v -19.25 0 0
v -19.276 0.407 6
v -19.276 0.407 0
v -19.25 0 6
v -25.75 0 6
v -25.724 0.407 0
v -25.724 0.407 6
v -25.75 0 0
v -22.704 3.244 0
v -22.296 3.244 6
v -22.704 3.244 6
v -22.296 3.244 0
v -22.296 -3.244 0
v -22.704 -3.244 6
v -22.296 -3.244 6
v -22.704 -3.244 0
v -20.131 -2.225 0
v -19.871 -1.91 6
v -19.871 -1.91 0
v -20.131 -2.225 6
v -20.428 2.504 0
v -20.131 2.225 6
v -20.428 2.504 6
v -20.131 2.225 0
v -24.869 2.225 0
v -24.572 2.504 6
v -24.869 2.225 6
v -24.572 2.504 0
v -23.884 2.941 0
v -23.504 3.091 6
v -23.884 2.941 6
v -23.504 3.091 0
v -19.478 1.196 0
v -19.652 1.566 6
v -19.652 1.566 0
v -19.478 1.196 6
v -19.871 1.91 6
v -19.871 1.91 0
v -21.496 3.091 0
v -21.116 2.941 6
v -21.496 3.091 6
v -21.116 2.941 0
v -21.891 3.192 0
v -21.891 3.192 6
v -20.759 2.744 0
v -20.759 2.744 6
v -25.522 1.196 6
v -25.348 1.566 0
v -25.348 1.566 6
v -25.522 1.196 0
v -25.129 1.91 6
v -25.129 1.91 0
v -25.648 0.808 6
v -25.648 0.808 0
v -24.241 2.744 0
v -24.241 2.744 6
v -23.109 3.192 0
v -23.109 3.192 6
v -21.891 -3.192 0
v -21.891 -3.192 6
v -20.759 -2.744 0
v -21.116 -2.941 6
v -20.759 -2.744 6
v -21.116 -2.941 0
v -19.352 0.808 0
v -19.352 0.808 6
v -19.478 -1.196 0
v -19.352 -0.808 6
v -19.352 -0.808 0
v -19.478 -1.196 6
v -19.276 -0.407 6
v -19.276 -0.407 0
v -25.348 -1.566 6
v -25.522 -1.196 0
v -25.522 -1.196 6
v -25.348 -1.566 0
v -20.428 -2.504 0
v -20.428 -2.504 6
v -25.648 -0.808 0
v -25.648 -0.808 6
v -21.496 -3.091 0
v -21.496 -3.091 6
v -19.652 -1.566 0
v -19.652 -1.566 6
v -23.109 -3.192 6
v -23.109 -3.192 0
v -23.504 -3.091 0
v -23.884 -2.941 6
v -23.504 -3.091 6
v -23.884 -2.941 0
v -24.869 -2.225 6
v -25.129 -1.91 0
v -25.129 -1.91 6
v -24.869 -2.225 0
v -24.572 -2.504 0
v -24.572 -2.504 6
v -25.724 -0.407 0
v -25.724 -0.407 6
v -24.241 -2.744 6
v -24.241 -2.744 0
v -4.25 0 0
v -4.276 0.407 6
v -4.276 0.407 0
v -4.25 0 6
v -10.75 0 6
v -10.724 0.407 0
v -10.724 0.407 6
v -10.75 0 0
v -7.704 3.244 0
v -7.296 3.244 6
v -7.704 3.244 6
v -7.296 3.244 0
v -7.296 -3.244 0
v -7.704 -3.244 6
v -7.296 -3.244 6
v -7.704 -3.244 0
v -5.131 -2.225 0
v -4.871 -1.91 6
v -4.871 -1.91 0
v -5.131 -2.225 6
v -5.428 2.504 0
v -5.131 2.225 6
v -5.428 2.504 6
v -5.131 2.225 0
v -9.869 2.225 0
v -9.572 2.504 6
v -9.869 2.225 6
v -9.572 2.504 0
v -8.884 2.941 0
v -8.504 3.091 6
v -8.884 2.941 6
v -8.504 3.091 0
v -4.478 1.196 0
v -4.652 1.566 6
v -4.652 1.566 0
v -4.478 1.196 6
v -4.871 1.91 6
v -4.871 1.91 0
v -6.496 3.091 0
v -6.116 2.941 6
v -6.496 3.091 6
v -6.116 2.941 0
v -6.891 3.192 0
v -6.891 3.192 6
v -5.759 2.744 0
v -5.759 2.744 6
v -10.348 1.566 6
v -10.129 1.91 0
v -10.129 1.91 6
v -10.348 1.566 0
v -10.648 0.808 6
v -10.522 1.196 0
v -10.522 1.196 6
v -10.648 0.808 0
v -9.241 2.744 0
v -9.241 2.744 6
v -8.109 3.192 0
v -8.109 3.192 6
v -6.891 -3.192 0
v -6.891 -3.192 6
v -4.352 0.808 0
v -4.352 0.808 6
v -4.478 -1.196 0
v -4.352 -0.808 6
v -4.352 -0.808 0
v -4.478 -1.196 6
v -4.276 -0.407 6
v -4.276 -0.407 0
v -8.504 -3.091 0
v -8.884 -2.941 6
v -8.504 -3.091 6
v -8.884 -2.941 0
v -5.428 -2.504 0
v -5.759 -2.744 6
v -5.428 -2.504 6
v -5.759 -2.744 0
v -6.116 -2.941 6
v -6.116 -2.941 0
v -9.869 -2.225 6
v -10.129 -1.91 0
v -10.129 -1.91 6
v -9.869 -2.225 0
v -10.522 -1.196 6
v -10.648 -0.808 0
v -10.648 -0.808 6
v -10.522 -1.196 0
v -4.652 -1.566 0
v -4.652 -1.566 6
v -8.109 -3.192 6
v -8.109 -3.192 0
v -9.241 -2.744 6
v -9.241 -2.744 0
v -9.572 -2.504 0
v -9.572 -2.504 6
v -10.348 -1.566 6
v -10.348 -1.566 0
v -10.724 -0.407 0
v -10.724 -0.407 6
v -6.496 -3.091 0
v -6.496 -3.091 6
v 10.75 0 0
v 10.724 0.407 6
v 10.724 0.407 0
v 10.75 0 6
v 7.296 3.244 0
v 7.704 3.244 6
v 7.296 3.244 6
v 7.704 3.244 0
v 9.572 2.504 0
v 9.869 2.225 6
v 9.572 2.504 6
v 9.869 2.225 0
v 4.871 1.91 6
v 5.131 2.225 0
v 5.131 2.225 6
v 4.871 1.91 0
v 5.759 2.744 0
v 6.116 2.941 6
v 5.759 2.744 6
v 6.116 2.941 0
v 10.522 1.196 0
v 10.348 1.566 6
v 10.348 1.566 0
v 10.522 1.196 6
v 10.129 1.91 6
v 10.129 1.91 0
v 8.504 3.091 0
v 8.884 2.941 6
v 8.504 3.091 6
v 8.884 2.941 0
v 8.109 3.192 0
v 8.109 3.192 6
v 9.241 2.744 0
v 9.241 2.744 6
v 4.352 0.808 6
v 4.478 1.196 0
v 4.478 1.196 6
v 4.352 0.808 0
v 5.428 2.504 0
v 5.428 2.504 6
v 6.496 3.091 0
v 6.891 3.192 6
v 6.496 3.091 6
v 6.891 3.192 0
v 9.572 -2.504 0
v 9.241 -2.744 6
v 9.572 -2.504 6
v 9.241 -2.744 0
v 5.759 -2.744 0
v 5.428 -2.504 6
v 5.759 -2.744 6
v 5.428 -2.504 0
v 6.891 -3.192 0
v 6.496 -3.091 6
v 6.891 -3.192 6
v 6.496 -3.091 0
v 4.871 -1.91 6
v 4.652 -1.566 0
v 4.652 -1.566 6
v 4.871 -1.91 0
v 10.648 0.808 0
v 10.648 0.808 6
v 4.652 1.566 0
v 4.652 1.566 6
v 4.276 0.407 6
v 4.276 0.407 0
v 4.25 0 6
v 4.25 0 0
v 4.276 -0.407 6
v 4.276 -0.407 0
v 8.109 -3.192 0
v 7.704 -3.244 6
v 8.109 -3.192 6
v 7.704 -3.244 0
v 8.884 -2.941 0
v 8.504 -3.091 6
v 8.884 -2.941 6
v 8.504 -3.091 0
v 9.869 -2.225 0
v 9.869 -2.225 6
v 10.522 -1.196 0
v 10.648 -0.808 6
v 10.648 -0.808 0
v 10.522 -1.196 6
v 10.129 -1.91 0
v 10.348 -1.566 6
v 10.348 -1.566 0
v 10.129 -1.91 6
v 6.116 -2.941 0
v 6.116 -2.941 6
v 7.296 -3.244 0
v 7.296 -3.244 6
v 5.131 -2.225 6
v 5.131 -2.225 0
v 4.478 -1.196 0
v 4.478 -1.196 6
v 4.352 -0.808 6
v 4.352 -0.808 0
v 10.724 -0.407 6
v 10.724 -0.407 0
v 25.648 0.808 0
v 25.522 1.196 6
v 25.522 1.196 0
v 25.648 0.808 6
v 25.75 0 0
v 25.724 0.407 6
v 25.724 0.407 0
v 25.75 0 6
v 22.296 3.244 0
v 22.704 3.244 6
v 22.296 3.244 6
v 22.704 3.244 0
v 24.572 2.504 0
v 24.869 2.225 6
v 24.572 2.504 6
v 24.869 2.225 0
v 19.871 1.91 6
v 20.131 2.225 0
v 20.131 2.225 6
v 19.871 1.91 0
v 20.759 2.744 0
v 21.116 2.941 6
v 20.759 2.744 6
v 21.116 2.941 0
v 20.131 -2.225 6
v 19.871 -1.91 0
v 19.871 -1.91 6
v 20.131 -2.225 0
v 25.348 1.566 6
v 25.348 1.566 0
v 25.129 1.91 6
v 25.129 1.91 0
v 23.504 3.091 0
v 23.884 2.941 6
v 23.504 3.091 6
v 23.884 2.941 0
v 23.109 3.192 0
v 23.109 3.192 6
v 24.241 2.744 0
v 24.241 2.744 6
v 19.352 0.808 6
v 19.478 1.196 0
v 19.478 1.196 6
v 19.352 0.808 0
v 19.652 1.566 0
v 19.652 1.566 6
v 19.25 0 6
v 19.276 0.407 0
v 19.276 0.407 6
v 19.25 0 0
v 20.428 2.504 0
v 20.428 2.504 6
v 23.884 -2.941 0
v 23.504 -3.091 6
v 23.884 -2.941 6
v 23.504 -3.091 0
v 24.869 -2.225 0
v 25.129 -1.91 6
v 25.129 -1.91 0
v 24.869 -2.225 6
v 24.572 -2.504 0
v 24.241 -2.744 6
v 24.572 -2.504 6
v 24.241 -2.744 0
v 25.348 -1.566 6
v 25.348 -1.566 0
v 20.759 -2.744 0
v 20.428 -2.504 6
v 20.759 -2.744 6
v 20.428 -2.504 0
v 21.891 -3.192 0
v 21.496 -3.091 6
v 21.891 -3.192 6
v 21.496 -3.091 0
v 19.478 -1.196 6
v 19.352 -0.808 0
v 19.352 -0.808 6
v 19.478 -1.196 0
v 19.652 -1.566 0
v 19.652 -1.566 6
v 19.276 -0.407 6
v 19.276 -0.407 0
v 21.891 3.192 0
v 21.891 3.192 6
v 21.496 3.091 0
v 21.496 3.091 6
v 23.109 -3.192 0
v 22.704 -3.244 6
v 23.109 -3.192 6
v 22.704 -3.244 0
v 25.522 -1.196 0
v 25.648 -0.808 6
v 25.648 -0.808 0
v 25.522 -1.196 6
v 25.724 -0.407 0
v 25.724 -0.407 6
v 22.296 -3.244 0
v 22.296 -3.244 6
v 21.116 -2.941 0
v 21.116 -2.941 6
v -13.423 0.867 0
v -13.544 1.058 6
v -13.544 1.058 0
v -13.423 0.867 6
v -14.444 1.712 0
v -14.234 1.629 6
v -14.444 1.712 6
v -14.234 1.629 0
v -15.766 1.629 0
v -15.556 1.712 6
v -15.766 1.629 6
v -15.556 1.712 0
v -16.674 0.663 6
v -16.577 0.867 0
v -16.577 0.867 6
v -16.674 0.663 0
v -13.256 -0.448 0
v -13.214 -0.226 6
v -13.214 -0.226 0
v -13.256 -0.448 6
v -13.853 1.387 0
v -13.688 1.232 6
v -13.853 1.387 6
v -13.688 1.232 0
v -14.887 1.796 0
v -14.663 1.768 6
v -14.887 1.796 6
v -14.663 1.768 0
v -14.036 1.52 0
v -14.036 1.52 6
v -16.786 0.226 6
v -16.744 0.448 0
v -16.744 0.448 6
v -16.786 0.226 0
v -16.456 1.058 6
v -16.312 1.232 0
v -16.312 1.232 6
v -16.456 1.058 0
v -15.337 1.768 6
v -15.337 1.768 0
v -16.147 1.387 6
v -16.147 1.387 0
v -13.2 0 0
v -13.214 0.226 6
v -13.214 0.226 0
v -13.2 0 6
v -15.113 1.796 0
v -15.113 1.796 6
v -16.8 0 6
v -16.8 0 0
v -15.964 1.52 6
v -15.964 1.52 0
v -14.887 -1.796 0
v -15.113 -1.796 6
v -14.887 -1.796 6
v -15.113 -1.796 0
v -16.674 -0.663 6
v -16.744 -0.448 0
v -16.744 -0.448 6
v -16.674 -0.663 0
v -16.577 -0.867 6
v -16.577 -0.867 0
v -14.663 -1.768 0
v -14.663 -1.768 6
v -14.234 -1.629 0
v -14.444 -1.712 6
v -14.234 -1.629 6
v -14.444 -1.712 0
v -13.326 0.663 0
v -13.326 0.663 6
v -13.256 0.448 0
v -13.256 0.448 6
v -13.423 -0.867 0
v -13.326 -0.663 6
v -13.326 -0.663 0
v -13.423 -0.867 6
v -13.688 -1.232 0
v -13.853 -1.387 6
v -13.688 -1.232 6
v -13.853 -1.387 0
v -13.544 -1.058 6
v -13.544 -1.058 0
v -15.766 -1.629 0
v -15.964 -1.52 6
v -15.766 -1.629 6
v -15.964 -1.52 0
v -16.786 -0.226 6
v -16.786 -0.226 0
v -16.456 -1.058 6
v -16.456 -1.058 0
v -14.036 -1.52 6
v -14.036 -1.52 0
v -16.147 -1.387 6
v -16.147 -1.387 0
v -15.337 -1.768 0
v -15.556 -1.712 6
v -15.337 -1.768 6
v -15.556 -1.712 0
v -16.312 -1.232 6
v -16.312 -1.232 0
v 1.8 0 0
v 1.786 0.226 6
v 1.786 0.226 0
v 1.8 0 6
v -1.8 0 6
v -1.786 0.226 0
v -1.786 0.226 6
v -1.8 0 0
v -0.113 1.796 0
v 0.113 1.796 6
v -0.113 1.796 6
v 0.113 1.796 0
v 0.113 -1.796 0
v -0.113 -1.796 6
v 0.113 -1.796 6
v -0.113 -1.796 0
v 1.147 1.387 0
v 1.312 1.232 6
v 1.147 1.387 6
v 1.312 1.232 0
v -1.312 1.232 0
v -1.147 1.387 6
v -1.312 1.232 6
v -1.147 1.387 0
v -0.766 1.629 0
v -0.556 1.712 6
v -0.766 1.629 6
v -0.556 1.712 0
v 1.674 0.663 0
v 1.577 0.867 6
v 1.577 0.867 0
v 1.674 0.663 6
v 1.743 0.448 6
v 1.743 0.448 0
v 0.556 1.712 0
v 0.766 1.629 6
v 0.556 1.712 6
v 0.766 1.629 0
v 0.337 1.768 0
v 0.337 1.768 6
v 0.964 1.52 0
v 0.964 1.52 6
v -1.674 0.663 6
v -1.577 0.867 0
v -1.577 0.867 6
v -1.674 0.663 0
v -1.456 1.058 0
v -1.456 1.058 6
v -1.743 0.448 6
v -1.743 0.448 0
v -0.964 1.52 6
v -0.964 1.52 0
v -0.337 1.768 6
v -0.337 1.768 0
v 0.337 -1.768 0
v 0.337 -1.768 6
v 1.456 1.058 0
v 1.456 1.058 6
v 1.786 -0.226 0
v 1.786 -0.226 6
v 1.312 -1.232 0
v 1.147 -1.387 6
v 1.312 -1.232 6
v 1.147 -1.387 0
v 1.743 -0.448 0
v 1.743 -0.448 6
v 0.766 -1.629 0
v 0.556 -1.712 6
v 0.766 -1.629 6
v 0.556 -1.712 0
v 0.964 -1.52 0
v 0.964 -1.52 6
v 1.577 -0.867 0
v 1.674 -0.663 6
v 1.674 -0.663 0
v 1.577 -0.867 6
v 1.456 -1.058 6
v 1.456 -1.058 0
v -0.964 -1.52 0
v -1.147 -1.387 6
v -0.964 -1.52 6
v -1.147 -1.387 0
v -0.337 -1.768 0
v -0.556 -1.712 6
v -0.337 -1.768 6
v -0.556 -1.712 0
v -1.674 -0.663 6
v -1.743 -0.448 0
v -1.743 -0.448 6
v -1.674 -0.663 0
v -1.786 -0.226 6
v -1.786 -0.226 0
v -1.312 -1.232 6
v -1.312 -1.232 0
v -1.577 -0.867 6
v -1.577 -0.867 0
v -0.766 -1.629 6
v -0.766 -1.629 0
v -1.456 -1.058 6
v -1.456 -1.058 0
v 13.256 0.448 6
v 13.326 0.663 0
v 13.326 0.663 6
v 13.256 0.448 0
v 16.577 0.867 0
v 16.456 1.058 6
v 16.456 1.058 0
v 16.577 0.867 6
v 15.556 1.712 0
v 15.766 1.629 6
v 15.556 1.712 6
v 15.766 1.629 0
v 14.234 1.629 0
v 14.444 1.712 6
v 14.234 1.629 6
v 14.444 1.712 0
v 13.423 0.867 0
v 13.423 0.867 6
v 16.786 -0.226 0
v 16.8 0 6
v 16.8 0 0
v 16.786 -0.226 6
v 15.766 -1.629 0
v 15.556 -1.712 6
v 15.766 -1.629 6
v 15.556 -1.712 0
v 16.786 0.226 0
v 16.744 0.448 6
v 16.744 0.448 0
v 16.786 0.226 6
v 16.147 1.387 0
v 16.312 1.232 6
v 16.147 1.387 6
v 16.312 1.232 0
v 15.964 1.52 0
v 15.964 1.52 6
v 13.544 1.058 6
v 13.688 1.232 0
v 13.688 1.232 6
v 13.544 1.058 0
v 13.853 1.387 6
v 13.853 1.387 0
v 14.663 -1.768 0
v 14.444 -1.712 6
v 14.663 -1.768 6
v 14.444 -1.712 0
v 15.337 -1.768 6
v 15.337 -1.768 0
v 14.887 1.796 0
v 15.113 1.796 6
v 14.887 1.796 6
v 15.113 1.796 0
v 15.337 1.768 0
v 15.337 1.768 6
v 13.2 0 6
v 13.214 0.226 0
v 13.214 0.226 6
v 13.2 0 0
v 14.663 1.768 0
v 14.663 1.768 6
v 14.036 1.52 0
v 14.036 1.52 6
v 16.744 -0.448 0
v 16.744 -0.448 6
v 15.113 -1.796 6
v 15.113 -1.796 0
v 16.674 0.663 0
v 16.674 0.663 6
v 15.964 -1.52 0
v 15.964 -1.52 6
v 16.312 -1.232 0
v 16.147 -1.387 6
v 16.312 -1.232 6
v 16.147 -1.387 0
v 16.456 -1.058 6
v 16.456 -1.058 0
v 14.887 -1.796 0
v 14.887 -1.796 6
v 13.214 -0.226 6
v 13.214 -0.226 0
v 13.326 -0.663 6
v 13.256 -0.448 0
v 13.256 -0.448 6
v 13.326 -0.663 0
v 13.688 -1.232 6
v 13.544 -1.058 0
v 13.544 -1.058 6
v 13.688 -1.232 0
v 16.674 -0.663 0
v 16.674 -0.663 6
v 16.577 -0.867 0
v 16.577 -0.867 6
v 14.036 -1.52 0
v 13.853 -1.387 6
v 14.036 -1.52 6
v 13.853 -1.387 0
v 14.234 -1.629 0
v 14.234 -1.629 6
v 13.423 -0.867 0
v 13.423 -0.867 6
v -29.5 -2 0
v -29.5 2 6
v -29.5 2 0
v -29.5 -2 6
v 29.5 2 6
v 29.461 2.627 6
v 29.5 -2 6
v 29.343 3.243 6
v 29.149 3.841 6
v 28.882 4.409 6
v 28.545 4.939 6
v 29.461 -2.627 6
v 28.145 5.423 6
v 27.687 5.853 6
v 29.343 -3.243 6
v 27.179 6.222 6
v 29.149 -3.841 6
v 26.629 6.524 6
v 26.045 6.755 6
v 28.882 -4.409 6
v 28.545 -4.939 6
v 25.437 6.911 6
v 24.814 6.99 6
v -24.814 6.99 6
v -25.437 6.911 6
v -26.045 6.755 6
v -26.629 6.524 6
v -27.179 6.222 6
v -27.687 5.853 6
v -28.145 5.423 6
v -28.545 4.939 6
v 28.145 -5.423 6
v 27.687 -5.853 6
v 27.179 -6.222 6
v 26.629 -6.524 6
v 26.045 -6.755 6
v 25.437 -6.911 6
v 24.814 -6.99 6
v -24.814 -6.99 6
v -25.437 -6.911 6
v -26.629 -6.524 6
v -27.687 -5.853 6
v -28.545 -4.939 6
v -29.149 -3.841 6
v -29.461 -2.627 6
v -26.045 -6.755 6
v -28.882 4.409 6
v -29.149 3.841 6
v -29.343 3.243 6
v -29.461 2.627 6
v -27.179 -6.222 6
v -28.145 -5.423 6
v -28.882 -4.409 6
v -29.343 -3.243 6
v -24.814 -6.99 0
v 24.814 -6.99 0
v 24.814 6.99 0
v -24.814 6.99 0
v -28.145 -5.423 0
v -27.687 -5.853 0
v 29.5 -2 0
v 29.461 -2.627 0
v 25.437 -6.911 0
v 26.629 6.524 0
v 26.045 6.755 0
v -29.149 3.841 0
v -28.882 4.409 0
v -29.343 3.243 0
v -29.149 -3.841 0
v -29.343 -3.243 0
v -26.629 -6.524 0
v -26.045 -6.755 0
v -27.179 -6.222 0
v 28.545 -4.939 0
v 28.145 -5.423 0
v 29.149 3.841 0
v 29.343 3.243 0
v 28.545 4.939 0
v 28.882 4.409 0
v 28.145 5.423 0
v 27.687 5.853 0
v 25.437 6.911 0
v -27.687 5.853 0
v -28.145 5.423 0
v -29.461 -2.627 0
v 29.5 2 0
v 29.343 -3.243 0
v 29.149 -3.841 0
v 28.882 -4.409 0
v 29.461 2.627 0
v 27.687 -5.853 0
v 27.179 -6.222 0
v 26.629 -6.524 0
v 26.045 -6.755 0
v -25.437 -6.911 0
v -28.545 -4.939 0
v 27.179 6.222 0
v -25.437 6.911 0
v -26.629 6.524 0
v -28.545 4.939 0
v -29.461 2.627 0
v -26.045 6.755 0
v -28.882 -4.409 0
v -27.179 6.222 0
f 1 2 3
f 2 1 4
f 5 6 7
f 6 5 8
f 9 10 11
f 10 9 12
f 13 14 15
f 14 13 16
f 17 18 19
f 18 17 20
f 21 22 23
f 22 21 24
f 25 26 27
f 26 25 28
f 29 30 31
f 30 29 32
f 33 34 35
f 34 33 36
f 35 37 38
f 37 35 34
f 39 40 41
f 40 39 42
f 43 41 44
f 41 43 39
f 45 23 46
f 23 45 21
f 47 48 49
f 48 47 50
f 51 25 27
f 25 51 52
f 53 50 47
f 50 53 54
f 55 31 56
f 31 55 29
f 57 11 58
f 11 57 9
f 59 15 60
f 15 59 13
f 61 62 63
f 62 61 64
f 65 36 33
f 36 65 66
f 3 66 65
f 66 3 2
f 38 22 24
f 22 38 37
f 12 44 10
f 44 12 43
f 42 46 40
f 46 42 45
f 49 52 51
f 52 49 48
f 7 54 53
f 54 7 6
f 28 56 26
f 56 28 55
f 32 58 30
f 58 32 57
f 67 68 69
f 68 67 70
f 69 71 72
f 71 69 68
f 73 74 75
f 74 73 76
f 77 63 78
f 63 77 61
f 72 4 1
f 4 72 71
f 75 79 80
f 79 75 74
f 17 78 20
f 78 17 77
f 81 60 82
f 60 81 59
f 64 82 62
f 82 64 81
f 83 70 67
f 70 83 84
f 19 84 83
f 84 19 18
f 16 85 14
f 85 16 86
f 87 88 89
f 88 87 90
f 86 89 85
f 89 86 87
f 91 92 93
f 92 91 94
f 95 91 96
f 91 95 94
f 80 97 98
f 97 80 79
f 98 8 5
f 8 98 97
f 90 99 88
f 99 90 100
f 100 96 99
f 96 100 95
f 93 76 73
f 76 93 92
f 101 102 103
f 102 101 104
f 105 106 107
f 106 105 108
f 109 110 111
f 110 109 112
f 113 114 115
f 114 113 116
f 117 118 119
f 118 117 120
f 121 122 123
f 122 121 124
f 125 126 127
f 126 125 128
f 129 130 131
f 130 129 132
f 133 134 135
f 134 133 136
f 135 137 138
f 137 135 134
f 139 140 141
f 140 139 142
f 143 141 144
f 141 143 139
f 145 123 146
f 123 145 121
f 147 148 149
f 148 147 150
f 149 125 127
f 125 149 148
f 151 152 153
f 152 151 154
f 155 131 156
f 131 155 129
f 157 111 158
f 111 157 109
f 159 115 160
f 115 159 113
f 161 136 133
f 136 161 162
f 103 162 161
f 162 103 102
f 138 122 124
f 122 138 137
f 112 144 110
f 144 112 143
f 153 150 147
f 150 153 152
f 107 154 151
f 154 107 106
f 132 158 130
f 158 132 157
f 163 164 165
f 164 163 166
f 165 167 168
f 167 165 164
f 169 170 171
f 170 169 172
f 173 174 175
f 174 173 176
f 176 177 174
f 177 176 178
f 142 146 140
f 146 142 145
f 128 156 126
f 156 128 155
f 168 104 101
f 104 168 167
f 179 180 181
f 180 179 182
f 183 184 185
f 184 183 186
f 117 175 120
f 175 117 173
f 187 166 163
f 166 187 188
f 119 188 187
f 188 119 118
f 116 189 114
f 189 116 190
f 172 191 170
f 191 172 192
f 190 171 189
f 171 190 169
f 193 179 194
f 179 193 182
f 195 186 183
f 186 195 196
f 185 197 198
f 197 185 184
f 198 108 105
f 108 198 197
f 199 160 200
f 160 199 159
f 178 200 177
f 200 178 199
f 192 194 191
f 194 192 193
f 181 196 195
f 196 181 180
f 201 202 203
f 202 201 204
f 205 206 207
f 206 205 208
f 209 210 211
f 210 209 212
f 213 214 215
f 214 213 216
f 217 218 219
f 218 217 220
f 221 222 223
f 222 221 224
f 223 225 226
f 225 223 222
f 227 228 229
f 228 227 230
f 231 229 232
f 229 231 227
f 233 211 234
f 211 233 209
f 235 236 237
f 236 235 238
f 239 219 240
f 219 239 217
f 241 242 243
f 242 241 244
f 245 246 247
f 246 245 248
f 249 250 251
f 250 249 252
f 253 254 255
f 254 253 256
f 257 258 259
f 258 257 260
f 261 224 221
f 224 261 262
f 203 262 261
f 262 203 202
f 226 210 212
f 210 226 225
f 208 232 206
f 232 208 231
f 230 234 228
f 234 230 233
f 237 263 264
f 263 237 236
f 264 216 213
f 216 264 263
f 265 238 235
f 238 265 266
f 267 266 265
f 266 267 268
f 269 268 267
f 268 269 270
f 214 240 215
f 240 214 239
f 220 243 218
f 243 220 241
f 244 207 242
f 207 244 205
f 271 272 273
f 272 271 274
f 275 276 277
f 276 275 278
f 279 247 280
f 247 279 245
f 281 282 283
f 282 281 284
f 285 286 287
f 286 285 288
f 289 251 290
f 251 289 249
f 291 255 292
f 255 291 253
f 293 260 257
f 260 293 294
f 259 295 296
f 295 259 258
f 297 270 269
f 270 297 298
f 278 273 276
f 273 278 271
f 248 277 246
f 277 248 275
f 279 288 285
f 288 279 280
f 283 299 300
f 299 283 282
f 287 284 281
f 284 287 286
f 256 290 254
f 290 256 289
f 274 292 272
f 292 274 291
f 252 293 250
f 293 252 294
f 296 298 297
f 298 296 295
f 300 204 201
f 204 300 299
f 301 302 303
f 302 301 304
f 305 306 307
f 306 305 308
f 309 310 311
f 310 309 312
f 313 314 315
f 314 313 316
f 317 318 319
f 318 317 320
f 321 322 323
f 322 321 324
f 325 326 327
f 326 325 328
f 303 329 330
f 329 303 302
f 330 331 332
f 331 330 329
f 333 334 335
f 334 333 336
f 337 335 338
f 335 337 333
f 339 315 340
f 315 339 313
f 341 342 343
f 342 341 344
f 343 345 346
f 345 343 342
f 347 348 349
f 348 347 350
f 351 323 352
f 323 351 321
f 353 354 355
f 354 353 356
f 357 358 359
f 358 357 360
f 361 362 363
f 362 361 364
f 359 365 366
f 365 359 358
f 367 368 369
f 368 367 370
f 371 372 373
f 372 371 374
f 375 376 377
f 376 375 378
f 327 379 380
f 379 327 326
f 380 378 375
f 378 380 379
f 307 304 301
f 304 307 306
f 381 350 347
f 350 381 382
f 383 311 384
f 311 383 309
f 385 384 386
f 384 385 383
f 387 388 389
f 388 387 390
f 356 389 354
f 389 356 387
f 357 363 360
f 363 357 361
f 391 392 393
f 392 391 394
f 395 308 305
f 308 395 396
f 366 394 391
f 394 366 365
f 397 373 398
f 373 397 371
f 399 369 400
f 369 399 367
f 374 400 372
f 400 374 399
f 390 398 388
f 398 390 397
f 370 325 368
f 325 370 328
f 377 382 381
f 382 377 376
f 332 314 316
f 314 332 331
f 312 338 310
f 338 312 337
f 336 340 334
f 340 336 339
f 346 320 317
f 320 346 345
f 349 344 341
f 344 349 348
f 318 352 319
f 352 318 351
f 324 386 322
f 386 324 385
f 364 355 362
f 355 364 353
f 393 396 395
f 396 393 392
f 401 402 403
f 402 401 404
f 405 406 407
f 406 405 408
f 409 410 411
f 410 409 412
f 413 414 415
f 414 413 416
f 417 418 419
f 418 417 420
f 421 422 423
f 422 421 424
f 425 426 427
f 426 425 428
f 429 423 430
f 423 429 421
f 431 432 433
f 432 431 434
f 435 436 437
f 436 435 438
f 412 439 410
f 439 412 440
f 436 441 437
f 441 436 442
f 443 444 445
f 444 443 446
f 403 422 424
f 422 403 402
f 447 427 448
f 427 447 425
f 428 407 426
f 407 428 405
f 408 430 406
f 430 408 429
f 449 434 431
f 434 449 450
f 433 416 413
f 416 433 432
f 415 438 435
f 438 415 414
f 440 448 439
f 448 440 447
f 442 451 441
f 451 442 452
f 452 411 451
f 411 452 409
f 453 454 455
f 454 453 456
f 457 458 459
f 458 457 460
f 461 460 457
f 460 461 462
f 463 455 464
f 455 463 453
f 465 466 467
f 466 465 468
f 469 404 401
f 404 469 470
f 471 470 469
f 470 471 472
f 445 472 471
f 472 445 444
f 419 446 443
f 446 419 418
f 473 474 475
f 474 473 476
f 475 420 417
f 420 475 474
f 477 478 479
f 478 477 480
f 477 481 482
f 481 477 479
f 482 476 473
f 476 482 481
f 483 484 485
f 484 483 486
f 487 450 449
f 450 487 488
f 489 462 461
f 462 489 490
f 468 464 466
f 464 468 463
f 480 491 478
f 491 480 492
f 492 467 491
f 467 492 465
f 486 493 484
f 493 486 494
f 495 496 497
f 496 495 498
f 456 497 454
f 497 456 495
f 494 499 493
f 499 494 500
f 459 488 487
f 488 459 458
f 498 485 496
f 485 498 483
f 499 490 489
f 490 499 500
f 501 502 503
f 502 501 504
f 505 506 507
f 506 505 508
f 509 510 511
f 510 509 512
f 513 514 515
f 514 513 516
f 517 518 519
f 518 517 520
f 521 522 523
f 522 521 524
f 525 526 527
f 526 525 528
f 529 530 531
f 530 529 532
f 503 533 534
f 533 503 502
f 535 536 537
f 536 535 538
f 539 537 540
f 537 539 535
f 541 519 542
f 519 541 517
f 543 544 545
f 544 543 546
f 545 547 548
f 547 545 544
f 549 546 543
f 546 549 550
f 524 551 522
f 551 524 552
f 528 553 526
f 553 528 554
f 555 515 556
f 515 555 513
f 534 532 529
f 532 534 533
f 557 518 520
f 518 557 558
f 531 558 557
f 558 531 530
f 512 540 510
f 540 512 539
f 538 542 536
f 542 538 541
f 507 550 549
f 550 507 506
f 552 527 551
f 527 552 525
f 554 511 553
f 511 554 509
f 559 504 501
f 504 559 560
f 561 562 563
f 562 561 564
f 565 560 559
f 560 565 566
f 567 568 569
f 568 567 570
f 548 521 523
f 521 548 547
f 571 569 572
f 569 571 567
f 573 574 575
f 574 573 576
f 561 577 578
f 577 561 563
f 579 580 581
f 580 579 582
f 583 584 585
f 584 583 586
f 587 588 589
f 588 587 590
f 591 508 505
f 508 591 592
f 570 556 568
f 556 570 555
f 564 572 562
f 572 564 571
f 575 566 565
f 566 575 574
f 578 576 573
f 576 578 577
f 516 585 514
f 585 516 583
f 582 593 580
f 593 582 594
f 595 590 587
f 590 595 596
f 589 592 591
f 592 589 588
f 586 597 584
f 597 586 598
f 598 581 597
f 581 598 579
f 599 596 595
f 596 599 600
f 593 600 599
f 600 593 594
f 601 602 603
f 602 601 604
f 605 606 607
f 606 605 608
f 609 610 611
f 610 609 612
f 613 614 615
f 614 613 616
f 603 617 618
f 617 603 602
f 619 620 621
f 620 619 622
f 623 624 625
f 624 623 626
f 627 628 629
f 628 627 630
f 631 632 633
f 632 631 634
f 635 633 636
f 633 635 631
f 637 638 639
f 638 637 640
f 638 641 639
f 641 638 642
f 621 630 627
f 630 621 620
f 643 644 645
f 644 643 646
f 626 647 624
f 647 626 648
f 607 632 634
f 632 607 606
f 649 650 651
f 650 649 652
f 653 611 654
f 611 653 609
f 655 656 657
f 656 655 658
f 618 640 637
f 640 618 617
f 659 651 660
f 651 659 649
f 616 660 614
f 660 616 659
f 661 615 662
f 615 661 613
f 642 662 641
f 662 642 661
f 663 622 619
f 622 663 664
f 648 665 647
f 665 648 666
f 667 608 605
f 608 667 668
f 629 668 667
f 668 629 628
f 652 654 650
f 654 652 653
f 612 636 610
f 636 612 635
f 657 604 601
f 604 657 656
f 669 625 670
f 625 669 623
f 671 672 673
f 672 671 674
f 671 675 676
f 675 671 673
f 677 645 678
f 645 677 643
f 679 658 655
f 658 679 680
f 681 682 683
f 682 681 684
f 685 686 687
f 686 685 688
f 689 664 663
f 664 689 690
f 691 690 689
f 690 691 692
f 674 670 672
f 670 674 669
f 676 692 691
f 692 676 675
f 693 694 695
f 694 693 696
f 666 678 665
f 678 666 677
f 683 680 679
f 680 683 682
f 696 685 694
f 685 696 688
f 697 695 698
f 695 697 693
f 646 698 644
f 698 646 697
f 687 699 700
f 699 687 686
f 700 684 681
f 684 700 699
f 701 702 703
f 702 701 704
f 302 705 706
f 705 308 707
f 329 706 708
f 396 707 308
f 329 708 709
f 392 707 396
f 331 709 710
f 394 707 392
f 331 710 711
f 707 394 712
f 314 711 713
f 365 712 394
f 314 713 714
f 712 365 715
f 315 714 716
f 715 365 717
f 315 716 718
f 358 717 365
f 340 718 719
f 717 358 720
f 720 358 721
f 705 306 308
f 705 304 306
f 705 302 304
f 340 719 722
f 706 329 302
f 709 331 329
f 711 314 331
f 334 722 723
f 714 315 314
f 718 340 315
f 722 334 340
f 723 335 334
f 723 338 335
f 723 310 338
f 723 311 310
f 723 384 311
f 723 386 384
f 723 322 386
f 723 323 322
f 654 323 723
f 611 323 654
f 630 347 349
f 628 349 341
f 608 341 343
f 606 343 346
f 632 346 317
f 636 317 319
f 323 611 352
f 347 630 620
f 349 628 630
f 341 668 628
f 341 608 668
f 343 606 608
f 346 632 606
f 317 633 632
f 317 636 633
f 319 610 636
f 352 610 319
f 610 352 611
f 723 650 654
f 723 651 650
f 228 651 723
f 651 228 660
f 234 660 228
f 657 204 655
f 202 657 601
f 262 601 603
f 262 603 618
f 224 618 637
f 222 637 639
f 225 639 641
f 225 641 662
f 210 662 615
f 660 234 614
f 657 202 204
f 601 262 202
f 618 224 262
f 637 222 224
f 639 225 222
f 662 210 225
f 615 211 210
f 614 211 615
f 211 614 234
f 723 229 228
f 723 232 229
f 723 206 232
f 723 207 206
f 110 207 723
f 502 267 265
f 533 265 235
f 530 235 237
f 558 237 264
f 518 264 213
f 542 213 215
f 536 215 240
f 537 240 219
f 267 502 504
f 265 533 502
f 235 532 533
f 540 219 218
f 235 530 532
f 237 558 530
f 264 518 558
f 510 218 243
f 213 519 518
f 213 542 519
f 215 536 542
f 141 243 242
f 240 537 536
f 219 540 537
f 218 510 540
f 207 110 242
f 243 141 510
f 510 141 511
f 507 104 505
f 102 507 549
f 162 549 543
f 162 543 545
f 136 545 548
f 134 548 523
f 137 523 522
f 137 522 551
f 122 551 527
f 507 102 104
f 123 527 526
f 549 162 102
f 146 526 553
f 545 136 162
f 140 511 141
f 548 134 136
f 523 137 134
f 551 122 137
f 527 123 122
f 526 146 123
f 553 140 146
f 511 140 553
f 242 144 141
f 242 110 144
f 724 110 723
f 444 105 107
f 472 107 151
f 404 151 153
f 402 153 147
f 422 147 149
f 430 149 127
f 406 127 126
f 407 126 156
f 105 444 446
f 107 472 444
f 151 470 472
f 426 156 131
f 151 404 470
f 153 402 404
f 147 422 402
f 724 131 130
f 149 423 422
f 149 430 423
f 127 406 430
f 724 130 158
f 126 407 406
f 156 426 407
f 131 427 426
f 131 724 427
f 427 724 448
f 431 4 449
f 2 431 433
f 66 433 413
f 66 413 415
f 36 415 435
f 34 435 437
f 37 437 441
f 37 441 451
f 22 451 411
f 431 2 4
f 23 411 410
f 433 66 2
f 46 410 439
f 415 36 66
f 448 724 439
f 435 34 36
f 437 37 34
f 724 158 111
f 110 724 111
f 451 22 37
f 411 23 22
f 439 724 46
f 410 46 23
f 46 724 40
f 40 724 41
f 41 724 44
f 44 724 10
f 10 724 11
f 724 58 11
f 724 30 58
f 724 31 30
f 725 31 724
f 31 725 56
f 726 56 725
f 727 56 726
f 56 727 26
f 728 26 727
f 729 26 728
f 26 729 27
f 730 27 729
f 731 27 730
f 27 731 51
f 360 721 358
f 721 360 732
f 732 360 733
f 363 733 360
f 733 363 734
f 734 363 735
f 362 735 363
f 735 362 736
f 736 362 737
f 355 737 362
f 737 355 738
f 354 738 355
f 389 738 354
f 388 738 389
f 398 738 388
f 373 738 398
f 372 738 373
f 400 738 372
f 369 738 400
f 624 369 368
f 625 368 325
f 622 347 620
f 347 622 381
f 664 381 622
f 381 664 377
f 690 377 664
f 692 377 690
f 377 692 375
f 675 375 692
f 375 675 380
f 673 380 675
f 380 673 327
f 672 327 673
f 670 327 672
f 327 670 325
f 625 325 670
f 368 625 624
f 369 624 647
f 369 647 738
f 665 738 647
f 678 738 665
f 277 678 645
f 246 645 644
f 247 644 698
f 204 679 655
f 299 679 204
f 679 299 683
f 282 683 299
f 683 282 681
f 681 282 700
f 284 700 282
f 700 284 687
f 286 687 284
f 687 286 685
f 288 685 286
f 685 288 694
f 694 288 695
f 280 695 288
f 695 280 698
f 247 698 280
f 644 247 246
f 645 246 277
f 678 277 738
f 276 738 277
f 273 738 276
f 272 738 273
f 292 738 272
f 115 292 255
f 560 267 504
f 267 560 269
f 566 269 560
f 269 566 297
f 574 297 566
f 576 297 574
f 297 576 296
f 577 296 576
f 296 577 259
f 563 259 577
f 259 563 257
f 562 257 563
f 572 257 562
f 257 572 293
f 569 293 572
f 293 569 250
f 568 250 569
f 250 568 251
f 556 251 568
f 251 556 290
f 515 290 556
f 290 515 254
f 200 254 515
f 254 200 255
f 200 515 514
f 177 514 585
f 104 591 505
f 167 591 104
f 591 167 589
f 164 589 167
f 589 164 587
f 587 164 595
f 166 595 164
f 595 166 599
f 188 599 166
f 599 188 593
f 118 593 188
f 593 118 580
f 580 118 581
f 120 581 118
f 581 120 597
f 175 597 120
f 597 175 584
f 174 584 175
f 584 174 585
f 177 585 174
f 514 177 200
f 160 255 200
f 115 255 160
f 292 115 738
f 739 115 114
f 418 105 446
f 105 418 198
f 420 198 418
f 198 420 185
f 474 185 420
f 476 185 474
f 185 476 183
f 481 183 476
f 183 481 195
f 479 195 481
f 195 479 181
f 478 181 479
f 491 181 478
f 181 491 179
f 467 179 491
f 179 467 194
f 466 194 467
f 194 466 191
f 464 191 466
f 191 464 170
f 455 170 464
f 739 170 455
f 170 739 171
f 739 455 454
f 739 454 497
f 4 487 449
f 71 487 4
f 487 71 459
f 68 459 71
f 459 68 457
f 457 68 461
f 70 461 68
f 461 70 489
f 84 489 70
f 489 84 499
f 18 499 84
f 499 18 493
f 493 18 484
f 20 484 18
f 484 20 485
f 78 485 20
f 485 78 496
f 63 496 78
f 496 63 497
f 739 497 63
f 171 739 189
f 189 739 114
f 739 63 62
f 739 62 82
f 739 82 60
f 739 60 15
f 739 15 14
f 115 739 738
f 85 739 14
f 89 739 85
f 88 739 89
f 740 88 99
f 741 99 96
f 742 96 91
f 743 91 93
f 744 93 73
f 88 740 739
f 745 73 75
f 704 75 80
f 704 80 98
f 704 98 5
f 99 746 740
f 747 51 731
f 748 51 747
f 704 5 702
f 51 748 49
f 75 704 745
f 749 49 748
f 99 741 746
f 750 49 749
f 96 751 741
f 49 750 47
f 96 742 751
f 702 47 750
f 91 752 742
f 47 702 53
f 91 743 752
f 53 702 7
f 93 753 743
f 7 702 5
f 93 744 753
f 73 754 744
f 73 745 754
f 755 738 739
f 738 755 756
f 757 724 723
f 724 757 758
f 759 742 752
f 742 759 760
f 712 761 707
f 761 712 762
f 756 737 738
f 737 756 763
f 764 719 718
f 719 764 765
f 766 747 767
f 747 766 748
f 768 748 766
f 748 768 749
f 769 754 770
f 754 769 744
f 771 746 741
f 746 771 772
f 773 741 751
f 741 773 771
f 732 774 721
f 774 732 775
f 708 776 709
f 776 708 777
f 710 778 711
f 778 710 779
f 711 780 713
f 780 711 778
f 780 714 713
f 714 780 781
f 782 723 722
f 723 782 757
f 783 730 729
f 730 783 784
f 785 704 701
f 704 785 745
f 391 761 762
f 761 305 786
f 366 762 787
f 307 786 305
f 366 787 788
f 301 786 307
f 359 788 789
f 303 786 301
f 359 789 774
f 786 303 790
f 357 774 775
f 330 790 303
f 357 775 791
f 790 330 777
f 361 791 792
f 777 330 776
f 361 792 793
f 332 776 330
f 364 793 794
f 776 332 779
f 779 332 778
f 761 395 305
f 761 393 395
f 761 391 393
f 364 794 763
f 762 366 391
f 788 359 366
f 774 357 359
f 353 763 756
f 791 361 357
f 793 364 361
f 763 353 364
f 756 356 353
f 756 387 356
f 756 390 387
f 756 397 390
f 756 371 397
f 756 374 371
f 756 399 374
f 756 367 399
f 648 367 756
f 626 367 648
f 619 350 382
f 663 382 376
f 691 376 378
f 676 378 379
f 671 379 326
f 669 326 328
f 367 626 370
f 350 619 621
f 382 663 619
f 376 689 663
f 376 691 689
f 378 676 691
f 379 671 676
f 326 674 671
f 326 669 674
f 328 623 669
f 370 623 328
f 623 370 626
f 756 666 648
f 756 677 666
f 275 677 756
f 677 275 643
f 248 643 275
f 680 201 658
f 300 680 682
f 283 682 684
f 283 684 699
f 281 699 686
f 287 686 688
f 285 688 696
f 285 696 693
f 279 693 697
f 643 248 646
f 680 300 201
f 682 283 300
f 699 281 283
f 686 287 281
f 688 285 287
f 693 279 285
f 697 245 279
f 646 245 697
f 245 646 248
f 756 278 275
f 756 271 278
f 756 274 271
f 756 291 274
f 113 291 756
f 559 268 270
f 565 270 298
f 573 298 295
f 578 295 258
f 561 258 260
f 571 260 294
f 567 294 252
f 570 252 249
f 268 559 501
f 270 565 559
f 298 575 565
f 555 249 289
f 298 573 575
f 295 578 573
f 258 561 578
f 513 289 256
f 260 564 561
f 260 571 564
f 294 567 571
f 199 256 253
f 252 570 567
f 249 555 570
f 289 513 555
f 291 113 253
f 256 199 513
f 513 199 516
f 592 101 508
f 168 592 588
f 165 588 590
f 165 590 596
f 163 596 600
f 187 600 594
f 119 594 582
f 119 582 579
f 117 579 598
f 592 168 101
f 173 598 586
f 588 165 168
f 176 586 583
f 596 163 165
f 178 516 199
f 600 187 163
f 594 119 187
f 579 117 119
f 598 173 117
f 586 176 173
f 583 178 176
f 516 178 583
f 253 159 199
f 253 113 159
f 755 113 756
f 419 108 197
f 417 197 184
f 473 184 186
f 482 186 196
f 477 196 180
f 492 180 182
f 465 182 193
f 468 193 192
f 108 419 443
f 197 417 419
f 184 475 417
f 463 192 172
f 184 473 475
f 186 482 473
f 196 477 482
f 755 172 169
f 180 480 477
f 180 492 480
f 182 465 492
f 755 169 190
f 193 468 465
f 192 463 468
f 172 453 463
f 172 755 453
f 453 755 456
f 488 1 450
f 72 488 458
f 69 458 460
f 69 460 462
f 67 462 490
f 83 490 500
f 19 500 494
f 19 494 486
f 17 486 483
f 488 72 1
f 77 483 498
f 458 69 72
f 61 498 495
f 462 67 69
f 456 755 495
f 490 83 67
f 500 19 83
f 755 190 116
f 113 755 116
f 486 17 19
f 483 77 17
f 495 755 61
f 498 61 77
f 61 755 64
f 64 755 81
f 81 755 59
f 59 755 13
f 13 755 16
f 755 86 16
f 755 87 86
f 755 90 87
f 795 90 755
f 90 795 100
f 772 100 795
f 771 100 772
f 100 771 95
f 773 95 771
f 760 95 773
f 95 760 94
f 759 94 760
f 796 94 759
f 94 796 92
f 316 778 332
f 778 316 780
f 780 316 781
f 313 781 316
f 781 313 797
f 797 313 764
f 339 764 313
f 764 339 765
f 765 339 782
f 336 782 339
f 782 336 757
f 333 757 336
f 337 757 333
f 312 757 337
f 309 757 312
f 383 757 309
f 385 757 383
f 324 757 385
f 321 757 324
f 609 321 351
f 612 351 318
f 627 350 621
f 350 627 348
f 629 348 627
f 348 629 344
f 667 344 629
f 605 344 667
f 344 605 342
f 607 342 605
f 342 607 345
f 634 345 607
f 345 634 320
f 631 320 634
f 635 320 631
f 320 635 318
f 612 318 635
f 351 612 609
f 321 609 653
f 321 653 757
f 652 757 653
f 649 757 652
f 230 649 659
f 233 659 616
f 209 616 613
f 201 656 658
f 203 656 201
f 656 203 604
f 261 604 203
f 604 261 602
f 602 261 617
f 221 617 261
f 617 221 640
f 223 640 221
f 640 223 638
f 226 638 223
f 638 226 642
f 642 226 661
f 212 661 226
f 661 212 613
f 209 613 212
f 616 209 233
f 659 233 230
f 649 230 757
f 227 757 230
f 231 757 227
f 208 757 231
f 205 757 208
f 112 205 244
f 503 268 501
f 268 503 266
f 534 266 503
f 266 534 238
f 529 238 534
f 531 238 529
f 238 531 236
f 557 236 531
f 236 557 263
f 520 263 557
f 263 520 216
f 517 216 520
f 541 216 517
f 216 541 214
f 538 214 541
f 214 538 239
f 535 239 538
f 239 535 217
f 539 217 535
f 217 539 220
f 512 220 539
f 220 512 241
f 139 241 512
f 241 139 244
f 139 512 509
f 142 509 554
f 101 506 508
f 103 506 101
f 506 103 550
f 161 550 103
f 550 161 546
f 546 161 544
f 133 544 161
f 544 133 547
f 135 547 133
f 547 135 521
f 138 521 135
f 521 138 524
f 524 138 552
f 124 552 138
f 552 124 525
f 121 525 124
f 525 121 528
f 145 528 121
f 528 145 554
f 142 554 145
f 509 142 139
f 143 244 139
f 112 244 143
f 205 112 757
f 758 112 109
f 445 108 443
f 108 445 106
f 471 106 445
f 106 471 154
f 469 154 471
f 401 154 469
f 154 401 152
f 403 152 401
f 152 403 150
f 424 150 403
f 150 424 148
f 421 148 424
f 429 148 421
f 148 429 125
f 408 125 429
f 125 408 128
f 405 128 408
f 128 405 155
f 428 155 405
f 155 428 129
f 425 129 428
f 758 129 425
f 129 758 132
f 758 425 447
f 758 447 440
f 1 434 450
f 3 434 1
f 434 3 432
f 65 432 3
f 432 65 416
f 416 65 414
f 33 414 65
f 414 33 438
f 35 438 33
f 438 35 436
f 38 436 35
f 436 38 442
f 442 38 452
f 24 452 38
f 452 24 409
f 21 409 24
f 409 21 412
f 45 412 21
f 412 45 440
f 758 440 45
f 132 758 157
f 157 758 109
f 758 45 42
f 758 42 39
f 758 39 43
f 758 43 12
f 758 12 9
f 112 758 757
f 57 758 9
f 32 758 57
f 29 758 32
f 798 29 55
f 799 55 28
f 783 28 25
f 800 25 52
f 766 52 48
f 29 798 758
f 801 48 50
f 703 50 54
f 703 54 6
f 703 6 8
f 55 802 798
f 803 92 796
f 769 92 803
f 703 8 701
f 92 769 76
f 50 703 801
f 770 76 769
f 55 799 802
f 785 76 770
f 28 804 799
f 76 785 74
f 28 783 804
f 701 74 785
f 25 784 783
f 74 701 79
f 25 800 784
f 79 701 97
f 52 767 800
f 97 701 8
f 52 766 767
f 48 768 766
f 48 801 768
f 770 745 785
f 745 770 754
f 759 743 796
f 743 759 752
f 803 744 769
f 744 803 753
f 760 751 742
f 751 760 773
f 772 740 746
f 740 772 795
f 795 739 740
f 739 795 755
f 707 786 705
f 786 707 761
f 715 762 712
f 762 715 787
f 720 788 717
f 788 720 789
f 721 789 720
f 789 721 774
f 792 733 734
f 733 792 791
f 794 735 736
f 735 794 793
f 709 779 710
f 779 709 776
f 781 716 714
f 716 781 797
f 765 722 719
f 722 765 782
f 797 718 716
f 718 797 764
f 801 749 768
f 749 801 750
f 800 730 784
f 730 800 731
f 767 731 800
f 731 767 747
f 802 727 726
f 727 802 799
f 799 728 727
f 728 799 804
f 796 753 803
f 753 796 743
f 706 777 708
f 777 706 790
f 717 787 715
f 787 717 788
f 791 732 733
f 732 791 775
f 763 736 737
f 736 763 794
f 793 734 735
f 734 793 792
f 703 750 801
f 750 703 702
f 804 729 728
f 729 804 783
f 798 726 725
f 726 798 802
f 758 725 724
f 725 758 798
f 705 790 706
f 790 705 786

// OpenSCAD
$fn = 50;


difference() {
	union() {
		hull() {
			translate(v = [-24.5000000000, 2.0000000000, 0]) {
				cylinder(h = 6, r = 5);
			}
			translate(v = [24.5000000000, 2.0000000000, 0]) {
				cylinder(h = 6, r = 5);
			}
			translate(v = [-24.5000000000, -2.0000000000, 0]) {
				cylinder(h = 6, r = 5);
			}
			translate(v = [24.5000000000, -2.0000000000, 0]) {
				cylinder(h = 6, r = 5);
			}
		}
	}
	union() {
		translate(v = [-22.5000000000, 0.0000000000, 0]) {
			translate(v = [0, 0, -100]) {
				cylinder(h = 200, r = 3.2500000000);
			}
		}
		translate(v = [-7.5000000000, 0.0000000000, 0]) {
			translate(v = [0, 0, -100]) {
				cylinder(h = 200, r = 3.2500000000);
			}
		}
		translate(v = [7.5000000000, 0.0000000000, 0]) {
			translate(v = [0, 0, -100]) {
				cylinder(h = 200, r = 3.2500000000);
			}
		}
		translate(v = [22.5000000000, 0.0000000000, 0]) {
			translate(v = [0, 0, -100]) {
				cylinder(h = 200, r = 3.2500000000);
			}
		}
		translate(v = [-22.5000000000, 0.0000000000, 0]) {
			translate(v = [0, 0, -100]) {
				cylinder(h = 200, r = 1.8000000000);
			}
		}
		translate(v = [-15.0000000000, 0.0000000000, 0]) {
			translate(v = [0, 0, -100]) {
				cylinder(h = 200, r = 1.8000000000);
			}
		}
		translate(v = [-7.5000000000, 0.0000000000, 0]) {
			translate(v = [0, 0, -100]) {
				cylinder(h = 200, r = 1.8000000000);
			}
		}
		translate(v = [0, 0, -100]) {
			cylinder(h = 200, r = 1.8000000000);
		}
		translate(v = [7.5000000000, 0.0000000000, 0]) {
			translate(v = [0, 0, -100]) {
				cylinder(h = 200, r = 1.8000000000);
			}
		}
		translate(v = [15.0000000000, 0.0000000000, 0]) {
			translate(v = [0, 0, -100]) {
				cylinder(h = 200, r = 1.8000000000);
			}
		}
		translate(v = [22.5000000000, 0.0000000000, 0]) {
			translate(v = [0, 0, -100]) {
				cylinder(h = 200, r = 1.8000000000);
			}
		}
	}
}
